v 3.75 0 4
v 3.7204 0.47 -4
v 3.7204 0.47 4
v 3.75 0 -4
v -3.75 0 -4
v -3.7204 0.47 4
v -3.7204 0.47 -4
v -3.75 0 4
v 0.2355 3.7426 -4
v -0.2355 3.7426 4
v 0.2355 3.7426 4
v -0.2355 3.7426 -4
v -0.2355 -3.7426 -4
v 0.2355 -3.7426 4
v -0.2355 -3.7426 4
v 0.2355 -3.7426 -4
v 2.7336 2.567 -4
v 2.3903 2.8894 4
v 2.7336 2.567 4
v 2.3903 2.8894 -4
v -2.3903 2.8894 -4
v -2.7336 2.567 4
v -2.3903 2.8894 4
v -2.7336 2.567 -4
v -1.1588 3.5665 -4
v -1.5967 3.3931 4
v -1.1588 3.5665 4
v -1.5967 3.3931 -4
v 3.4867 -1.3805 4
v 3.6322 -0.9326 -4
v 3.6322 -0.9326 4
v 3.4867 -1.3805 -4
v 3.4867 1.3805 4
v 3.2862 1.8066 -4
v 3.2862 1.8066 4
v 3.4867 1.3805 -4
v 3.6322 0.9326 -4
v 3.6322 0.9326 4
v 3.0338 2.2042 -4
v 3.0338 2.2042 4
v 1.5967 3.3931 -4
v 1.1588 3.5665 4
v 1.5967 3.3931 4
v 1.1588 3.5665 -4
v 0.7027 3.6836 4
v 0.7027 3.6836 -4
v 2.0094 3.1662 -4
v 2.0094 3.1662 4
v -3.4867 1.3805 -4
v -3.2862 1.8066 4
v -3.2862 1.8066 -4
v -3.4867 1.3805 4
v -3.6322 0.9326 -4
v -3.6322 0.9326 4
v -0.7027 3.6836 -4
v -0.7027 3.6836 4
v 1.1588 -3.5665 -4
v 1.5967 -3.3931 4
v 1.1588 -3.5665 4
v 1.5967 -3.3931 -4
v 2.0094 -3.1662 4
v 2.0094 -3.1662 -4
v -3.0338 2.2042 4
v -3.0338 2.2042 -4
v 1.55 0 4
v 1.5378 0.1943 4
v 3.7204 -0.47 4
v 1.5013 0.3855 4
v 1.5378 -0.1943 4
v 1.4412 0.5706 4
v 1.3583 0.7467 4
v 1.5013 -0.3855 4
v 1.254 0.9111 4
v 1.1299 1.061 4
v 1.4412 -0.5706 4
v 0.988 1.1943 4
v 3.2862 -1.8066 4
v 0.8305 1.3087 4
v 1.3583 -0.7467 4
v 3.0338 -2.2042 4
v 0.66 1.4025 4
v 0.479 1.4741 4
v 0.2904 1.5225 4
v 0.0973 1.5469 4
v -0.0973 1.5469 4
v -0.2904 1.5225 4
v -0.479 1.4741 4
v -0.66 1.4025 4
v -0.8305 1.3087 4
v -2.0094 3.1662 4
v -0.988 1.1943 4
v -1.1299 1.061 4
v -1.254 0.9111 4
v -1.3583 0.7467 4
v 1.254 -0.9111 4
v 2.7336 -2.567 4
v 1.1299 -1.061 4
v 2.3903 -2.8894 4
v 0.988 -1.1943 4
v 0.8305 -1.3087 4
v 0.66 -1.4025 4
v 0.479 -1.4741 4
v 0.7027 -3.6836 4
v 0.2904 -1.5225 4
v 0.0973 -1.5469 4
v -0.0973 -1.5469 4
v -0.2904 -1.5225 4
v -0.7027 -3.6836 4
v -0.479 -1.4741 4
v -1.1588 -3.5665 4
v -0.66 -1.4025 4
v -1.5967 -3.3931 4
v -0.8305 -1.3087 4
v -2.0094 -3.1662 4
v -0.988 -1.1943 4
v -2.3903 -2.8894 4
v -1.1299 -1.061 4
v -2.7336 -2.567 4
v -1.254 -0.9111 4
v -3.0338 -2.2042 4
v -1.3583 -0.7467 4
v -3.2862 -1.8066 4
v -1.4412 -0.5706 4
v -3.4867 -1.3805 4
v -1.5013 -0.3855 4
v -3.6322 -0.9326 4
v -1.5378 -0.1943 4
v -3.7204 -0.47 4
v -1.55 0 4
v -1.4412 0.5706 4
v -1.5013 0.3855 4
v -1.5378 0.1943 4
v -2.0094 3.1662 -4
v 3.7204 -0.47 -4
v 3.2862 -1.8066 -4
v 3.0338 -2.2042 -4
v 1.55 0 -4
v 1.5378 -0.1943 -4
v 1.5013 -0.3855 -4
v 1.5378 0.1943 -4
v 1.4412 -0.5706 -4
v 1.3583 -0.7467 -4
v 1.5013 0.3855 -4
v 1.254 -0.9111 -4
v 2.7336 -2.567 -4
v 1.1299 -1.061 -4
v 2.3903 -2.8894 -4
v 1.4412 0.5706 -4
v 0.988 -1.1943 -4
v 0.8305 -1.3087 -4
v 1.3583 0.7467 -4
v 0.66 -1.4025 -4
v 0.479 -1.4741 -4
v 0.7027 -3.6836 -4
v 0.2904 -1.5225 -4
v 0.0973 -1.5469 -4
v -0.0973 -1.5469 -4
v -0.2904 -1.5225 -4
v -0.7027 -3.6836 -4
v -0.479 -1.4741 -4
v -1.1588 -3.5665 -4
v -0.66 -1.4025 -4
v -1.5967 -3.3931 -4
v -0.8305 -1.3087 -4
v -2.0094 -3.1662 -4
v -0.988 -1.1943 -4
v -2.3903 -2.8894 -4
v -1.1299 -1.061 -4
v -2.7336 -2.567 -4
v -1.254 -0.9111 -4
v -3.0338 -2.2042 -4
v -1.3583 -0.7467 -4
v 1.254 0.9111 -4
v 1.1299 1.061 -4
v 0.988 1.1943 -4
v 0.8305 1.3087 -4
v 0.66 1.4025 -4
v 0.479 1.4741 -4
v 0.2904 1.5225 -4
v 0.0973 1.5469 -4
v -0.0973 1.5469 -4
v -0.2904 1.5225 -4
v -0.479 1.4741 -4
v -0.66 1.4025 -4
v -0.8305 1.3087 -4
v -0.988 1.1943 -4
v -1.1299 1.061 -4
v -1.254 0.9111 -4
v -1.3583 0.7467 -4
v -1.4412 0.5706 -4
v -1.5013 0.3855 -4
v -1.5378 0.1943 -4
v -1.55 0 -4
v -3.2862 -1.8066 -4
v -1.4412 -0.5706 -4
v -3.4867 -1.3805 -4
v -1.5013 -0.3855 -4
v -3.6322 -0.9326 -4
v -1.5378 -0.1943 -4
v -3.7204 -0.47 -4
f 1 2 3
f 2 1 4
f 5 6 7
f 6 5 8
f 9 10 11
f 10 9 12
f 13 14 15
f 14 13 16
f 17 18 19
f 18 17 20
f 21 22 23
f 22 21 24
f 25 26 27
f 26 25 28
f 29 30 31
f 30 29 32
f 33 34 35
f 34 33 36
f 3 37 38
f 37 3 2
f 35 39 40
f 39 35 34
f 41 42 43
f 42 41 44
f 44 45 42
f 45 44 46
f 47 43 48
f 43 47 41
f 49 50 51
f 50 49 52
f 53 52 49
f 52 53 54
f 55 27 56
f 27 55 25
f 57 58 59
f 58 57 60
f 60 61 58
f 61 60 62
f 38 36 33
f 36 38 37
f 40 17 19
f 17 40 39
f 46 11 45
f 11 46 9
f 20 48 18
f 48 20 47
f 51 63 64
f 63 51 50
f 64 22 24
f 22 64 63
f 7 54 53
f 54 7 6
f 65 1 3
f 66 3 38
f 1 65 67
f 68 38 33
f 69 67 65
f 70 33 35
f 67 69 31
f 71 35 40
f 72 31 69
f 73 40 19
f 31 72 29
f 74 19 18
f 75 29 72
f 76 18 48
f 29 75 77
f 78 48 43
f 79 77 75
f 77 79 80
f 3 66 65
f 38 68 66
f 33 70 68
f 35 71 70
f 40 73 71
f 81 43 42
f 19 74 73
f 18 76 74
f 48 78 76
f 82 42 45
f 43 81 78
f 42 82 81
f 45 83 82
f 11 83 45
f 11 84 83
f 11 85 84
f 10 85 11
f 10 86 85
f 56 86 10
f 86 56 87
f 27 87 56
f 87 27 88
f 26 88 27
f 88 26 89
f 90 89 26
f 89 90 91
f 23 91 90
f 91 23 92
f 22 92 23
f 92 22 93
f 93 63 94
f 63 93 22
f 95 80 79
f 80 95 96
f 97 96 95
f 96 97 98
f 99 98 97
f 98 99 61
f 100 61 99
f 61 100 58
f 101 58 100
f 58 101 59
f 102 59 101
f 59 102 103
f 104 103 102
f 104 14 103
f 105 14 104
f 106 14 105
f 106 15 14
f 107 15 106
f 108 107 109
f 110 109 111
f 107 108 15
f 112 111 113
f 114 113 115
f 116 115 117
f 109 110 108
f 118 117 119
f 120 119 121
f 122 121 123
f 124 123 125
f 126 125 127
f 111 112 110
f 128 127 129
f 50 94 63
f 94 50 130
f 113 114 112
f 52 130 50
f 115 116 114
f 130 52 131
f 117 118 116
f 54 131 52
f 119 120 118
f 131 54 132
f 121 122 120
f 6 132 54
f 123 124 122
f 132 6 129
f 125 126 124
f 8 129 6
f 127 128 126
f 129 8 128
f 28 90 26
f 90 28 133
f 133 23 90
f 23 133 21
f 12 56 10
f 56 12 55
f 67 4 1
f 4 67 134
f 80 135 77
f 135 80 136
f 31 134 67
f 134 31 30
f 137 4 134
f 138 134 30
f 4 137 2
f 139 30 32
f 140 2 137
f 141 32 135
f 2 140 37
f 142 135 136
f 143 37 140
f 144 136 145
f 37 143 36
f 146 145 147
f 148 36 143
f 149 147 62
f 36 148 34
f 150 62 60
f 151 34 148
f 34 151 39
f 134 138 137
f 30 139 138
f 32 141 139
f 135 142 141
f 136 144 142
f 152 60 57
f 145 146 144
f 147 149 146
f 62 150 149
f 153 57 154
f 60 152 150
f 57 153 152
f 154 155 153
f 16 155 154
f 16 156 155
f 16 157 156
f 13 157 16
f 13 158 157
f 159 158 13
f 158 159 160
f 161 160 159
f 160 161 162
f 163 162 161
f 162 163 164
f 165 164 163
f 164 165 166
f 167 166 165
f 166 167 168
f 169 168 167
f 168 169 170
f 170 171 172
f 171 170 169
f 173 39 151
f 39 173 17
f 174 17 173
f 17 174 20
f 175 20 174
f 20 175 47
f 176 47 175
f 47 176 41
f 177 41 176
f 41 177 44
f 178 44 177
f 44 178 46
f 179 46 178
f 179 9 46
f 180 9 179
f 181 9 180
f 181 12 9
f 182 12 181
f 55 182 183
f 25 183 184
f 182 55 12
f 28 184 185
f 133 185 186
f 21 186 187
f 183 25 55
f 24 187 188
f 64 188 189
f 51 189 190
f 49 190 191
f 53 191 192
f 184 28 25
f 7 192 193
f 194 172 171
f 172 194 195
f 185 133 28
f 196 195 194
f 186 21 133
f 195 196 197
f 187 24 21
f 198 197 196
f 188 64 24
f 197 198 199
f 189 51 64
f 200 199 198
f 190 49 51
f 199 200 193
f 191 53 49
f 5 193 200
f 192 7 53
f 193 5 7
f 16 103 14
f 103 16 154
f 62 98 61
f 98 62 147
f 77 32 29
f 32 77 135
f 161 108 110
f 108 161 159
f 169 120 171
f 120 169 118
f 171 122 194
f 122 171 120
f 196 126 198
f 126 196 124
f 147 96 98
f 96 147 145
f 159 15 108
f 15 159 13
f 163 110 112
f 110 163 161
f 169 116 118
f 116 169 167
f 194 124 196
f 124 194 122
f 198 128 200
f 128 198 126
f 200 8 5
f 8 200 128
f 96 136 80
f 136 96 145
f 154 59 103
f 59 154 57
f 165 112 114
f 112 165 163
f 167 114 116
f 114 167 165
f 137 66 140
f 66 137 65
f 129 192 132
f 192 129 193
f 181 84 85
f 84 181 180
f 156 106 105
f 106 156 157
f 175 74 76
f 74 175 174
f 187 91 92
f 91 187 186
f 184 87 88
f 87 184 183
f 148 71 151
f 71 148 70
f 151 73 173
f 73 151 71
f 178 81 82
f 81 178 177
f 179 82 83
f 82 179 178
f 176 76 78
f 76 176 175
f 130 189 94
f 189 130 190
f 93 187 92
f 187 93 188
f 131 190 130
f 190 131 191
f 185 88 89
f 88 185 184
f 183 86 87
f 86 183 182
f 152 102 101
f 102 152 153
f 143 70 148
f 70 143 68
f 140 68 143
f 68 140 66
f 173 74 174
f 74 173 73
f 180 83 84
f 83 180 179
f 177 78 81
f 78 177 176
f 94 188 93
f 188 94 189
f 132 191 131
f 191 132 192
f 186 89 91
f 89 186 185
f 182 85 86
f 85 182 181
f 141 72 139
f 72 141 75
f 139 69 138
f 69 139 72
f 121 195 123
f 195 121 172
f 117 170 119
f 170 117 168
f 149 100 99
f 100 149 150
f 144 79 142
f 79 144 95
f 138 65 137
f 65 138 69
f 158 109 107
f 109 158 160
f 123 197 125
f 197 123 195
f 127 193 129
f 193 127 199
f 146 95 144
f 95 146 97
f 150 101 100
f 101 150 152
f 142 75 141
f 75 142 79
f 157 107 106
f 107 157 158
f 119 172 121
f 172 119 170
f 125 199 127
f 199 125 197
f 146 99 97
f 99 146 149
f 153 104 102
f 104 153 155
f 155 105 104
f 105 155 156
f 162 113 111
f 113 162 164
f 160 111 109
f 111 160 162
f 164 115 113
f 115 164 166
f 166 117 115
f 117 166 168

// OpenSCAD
$fn = 50;


difference() {
	union() {
		translate(v = [0, 0, -4.0000000000]) {
			cylinder(h = 8, r = 3.7500000000);
		}
	}
	union() {
		translate(v = [0, 0, -100.0000000000]) {
			cylinder(h = 200, r = 1.5500000000);
		}
	}
}
